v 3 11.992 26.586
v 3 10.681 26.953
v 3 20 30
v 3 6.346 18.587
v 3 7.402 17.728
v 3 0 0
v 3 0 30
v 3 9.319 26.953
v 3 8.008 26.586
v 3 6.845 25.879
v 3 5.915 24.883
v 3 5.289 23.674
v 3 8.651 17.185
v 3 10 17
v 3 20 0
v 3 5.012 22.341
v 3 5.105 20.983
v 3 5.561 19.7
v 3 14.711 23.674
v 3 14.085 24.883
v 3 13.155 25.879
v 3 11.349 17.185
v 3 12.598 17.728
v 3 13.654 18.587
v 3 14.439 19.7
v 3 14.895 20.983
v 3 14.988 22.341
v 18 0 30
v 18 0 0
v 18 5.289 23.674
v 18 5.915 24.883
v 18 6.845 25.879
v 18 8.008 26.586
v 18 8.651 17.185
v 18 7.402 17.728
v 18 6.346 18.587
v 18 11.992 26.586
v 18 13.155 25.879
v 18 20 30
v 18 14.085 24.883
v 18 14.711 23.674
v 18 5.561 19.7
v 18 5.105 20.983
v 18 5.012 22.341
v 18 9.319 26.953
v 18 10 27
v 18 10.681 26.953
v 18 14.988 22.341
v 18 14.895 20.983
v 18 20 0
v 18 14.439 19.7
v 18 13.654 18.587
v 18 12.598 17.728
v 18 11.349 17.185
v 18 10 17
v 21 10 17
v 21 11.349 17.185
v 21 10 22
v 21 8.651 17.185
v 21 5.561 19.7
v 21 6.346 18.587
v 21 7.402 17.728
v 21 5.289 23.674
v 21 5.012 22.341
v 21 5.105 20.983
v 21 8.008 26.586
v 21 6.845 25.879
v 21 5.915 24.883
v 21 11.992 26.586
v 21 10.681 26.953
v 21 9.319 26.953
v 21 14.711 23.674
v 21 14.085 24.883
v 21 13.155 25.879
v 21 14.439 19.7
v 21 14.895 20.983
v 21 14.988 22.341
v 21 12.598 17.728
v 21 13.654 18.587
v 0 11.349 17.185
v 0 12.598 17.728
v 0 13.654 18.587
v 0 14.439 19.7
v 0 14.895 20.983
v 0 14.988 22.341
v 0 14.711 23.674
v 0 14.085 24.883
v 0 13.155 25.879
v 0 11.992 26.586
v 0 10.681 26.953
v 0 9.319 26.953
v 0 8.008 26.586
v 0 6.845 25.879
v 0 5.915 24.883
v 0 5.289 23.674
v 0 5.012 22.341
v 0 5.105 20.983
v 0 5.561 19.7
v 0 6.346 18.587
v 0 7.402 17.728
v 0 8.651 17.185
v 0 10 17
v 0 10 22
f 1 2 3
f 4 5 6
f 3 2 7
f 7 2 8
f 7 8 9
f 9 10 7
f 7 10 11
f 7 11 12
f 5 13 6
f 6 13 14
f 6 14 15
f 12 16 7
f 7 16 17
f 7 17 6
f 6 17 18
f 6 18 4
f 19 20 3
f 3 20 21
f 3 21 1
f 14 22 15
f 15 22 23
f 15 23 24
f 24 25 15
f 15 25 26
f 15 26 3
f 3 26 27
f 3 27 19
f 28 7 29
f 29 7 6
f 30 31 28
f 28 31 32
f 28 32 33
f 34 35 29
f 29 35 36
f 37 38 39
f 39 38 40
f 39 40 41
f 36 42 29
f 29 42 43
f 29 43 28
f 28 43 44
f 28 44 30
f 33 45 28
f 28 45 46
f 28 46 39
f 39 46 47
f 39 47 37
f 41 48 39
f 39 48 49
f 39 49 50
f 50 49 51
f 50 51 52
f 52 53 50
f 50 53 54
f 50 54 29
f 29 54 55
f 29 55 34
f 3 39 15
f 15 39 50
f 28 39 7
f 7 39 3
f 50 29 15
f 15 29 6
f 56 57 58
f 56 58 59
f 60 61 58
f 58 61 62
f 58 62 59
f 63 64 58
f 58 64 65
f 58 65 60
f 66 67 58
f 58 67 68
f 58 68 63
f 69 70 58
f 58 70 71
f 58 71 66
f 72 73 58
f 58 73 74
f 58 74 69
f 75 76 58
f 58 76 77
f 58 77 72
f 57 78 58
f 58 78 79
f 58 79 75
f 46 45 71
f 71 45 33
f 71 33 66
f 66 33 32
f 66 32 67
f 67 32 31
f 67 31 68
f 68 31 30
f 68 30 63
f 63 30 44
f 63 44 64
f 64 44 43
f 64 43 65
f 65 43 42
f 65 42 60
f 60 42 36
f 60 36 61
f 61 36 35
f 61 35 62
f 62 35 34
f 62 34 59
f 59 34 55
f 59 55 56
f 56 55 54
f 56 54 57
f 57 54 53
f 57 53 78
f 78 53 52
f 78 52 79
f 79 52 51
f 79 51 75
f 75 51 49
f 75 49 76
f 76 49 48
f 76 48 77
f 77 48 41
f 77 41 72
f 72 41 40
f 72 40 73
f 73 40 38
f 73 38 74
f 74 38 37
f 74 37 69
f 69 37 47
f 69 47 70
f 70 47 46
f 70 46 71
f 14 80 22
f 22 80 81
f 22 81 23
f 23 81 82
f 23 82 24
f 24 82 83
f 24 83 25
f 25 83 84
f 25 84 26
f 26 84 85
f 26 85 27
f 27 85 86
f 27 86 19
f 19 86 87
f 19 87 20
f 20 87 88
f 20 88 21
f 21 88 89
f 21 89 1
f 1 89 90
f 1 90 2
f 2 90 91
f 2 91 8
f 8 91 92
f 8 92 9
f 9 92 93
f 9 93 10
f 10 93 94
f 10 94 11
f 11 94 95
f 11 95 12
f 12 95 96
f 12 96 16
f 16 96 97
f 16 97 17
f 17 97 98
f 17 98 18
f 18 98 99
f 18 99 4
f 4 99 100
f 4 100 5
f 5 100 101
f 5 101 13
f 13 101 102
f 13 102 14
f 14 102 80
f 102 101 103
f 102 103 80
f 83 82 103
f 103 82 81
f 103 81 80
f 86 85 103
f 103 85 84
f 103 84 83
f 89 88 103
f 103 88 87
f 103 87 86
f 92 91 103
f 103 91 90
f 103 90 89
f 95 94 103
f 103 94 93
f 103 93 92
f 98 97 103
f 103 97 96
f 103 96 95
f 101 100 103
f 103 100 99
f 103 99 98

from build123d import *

# Parameters (mm, degrees)
SKIZZE1_W                             = 15
SKIZZE1_H                             = 20
AUFSATZ_LINEAR_AUSTRAGEN8_DEPTH       = 30
AUFSATZ_LINEAR_AUSTRAGEN10_DEPTH      = 3
AUFSATZ_LINEAR_AUSTRAGEN10_DEPTH_BACK = 18
SKIZZE2_R                             = 5


with BuildPart() as part:
    # Skizze1 → Aufsatz-Linear austragen8 (new body)
    with BuildSketch(Plane.XY):
        with Locations((7.5, 10)):
            Rectangle(SKIZZE1_W, SKIZZE1_H)
    extrude(amount=AUFSATZ_LINEAR_AUSTRAGEN8_DEPTH)

    # Skizze2 → Aufsatz-Linear austragen10 (add, two sides: drawn at the far end of the back side and taken through both)
    with BuildSketch(Plane(origin=(15, 0, 0), x_dir=(0, 0, -1), z_dir=(1, 0, 0)).offset(-AUFSATZ_LINEAR_AUSTRAGEN10_DEPTH_BACK)):
        with Locations((-22, 10)):
            Circle(SKIZZE2_R)
    extrude(amount=AUFSATZ_LINEAR_AUSTRAGEN10_DEPTH + AUFSATZ_LINEAR_AUSTRAGEN10_DEPTH_BACK)


with BuildPart() as part_1:
    # Körper-Verschieben/Kopieren1: moved
    add(part.part.moved(Location((3, 0, 0))))


solid = part_1.part
